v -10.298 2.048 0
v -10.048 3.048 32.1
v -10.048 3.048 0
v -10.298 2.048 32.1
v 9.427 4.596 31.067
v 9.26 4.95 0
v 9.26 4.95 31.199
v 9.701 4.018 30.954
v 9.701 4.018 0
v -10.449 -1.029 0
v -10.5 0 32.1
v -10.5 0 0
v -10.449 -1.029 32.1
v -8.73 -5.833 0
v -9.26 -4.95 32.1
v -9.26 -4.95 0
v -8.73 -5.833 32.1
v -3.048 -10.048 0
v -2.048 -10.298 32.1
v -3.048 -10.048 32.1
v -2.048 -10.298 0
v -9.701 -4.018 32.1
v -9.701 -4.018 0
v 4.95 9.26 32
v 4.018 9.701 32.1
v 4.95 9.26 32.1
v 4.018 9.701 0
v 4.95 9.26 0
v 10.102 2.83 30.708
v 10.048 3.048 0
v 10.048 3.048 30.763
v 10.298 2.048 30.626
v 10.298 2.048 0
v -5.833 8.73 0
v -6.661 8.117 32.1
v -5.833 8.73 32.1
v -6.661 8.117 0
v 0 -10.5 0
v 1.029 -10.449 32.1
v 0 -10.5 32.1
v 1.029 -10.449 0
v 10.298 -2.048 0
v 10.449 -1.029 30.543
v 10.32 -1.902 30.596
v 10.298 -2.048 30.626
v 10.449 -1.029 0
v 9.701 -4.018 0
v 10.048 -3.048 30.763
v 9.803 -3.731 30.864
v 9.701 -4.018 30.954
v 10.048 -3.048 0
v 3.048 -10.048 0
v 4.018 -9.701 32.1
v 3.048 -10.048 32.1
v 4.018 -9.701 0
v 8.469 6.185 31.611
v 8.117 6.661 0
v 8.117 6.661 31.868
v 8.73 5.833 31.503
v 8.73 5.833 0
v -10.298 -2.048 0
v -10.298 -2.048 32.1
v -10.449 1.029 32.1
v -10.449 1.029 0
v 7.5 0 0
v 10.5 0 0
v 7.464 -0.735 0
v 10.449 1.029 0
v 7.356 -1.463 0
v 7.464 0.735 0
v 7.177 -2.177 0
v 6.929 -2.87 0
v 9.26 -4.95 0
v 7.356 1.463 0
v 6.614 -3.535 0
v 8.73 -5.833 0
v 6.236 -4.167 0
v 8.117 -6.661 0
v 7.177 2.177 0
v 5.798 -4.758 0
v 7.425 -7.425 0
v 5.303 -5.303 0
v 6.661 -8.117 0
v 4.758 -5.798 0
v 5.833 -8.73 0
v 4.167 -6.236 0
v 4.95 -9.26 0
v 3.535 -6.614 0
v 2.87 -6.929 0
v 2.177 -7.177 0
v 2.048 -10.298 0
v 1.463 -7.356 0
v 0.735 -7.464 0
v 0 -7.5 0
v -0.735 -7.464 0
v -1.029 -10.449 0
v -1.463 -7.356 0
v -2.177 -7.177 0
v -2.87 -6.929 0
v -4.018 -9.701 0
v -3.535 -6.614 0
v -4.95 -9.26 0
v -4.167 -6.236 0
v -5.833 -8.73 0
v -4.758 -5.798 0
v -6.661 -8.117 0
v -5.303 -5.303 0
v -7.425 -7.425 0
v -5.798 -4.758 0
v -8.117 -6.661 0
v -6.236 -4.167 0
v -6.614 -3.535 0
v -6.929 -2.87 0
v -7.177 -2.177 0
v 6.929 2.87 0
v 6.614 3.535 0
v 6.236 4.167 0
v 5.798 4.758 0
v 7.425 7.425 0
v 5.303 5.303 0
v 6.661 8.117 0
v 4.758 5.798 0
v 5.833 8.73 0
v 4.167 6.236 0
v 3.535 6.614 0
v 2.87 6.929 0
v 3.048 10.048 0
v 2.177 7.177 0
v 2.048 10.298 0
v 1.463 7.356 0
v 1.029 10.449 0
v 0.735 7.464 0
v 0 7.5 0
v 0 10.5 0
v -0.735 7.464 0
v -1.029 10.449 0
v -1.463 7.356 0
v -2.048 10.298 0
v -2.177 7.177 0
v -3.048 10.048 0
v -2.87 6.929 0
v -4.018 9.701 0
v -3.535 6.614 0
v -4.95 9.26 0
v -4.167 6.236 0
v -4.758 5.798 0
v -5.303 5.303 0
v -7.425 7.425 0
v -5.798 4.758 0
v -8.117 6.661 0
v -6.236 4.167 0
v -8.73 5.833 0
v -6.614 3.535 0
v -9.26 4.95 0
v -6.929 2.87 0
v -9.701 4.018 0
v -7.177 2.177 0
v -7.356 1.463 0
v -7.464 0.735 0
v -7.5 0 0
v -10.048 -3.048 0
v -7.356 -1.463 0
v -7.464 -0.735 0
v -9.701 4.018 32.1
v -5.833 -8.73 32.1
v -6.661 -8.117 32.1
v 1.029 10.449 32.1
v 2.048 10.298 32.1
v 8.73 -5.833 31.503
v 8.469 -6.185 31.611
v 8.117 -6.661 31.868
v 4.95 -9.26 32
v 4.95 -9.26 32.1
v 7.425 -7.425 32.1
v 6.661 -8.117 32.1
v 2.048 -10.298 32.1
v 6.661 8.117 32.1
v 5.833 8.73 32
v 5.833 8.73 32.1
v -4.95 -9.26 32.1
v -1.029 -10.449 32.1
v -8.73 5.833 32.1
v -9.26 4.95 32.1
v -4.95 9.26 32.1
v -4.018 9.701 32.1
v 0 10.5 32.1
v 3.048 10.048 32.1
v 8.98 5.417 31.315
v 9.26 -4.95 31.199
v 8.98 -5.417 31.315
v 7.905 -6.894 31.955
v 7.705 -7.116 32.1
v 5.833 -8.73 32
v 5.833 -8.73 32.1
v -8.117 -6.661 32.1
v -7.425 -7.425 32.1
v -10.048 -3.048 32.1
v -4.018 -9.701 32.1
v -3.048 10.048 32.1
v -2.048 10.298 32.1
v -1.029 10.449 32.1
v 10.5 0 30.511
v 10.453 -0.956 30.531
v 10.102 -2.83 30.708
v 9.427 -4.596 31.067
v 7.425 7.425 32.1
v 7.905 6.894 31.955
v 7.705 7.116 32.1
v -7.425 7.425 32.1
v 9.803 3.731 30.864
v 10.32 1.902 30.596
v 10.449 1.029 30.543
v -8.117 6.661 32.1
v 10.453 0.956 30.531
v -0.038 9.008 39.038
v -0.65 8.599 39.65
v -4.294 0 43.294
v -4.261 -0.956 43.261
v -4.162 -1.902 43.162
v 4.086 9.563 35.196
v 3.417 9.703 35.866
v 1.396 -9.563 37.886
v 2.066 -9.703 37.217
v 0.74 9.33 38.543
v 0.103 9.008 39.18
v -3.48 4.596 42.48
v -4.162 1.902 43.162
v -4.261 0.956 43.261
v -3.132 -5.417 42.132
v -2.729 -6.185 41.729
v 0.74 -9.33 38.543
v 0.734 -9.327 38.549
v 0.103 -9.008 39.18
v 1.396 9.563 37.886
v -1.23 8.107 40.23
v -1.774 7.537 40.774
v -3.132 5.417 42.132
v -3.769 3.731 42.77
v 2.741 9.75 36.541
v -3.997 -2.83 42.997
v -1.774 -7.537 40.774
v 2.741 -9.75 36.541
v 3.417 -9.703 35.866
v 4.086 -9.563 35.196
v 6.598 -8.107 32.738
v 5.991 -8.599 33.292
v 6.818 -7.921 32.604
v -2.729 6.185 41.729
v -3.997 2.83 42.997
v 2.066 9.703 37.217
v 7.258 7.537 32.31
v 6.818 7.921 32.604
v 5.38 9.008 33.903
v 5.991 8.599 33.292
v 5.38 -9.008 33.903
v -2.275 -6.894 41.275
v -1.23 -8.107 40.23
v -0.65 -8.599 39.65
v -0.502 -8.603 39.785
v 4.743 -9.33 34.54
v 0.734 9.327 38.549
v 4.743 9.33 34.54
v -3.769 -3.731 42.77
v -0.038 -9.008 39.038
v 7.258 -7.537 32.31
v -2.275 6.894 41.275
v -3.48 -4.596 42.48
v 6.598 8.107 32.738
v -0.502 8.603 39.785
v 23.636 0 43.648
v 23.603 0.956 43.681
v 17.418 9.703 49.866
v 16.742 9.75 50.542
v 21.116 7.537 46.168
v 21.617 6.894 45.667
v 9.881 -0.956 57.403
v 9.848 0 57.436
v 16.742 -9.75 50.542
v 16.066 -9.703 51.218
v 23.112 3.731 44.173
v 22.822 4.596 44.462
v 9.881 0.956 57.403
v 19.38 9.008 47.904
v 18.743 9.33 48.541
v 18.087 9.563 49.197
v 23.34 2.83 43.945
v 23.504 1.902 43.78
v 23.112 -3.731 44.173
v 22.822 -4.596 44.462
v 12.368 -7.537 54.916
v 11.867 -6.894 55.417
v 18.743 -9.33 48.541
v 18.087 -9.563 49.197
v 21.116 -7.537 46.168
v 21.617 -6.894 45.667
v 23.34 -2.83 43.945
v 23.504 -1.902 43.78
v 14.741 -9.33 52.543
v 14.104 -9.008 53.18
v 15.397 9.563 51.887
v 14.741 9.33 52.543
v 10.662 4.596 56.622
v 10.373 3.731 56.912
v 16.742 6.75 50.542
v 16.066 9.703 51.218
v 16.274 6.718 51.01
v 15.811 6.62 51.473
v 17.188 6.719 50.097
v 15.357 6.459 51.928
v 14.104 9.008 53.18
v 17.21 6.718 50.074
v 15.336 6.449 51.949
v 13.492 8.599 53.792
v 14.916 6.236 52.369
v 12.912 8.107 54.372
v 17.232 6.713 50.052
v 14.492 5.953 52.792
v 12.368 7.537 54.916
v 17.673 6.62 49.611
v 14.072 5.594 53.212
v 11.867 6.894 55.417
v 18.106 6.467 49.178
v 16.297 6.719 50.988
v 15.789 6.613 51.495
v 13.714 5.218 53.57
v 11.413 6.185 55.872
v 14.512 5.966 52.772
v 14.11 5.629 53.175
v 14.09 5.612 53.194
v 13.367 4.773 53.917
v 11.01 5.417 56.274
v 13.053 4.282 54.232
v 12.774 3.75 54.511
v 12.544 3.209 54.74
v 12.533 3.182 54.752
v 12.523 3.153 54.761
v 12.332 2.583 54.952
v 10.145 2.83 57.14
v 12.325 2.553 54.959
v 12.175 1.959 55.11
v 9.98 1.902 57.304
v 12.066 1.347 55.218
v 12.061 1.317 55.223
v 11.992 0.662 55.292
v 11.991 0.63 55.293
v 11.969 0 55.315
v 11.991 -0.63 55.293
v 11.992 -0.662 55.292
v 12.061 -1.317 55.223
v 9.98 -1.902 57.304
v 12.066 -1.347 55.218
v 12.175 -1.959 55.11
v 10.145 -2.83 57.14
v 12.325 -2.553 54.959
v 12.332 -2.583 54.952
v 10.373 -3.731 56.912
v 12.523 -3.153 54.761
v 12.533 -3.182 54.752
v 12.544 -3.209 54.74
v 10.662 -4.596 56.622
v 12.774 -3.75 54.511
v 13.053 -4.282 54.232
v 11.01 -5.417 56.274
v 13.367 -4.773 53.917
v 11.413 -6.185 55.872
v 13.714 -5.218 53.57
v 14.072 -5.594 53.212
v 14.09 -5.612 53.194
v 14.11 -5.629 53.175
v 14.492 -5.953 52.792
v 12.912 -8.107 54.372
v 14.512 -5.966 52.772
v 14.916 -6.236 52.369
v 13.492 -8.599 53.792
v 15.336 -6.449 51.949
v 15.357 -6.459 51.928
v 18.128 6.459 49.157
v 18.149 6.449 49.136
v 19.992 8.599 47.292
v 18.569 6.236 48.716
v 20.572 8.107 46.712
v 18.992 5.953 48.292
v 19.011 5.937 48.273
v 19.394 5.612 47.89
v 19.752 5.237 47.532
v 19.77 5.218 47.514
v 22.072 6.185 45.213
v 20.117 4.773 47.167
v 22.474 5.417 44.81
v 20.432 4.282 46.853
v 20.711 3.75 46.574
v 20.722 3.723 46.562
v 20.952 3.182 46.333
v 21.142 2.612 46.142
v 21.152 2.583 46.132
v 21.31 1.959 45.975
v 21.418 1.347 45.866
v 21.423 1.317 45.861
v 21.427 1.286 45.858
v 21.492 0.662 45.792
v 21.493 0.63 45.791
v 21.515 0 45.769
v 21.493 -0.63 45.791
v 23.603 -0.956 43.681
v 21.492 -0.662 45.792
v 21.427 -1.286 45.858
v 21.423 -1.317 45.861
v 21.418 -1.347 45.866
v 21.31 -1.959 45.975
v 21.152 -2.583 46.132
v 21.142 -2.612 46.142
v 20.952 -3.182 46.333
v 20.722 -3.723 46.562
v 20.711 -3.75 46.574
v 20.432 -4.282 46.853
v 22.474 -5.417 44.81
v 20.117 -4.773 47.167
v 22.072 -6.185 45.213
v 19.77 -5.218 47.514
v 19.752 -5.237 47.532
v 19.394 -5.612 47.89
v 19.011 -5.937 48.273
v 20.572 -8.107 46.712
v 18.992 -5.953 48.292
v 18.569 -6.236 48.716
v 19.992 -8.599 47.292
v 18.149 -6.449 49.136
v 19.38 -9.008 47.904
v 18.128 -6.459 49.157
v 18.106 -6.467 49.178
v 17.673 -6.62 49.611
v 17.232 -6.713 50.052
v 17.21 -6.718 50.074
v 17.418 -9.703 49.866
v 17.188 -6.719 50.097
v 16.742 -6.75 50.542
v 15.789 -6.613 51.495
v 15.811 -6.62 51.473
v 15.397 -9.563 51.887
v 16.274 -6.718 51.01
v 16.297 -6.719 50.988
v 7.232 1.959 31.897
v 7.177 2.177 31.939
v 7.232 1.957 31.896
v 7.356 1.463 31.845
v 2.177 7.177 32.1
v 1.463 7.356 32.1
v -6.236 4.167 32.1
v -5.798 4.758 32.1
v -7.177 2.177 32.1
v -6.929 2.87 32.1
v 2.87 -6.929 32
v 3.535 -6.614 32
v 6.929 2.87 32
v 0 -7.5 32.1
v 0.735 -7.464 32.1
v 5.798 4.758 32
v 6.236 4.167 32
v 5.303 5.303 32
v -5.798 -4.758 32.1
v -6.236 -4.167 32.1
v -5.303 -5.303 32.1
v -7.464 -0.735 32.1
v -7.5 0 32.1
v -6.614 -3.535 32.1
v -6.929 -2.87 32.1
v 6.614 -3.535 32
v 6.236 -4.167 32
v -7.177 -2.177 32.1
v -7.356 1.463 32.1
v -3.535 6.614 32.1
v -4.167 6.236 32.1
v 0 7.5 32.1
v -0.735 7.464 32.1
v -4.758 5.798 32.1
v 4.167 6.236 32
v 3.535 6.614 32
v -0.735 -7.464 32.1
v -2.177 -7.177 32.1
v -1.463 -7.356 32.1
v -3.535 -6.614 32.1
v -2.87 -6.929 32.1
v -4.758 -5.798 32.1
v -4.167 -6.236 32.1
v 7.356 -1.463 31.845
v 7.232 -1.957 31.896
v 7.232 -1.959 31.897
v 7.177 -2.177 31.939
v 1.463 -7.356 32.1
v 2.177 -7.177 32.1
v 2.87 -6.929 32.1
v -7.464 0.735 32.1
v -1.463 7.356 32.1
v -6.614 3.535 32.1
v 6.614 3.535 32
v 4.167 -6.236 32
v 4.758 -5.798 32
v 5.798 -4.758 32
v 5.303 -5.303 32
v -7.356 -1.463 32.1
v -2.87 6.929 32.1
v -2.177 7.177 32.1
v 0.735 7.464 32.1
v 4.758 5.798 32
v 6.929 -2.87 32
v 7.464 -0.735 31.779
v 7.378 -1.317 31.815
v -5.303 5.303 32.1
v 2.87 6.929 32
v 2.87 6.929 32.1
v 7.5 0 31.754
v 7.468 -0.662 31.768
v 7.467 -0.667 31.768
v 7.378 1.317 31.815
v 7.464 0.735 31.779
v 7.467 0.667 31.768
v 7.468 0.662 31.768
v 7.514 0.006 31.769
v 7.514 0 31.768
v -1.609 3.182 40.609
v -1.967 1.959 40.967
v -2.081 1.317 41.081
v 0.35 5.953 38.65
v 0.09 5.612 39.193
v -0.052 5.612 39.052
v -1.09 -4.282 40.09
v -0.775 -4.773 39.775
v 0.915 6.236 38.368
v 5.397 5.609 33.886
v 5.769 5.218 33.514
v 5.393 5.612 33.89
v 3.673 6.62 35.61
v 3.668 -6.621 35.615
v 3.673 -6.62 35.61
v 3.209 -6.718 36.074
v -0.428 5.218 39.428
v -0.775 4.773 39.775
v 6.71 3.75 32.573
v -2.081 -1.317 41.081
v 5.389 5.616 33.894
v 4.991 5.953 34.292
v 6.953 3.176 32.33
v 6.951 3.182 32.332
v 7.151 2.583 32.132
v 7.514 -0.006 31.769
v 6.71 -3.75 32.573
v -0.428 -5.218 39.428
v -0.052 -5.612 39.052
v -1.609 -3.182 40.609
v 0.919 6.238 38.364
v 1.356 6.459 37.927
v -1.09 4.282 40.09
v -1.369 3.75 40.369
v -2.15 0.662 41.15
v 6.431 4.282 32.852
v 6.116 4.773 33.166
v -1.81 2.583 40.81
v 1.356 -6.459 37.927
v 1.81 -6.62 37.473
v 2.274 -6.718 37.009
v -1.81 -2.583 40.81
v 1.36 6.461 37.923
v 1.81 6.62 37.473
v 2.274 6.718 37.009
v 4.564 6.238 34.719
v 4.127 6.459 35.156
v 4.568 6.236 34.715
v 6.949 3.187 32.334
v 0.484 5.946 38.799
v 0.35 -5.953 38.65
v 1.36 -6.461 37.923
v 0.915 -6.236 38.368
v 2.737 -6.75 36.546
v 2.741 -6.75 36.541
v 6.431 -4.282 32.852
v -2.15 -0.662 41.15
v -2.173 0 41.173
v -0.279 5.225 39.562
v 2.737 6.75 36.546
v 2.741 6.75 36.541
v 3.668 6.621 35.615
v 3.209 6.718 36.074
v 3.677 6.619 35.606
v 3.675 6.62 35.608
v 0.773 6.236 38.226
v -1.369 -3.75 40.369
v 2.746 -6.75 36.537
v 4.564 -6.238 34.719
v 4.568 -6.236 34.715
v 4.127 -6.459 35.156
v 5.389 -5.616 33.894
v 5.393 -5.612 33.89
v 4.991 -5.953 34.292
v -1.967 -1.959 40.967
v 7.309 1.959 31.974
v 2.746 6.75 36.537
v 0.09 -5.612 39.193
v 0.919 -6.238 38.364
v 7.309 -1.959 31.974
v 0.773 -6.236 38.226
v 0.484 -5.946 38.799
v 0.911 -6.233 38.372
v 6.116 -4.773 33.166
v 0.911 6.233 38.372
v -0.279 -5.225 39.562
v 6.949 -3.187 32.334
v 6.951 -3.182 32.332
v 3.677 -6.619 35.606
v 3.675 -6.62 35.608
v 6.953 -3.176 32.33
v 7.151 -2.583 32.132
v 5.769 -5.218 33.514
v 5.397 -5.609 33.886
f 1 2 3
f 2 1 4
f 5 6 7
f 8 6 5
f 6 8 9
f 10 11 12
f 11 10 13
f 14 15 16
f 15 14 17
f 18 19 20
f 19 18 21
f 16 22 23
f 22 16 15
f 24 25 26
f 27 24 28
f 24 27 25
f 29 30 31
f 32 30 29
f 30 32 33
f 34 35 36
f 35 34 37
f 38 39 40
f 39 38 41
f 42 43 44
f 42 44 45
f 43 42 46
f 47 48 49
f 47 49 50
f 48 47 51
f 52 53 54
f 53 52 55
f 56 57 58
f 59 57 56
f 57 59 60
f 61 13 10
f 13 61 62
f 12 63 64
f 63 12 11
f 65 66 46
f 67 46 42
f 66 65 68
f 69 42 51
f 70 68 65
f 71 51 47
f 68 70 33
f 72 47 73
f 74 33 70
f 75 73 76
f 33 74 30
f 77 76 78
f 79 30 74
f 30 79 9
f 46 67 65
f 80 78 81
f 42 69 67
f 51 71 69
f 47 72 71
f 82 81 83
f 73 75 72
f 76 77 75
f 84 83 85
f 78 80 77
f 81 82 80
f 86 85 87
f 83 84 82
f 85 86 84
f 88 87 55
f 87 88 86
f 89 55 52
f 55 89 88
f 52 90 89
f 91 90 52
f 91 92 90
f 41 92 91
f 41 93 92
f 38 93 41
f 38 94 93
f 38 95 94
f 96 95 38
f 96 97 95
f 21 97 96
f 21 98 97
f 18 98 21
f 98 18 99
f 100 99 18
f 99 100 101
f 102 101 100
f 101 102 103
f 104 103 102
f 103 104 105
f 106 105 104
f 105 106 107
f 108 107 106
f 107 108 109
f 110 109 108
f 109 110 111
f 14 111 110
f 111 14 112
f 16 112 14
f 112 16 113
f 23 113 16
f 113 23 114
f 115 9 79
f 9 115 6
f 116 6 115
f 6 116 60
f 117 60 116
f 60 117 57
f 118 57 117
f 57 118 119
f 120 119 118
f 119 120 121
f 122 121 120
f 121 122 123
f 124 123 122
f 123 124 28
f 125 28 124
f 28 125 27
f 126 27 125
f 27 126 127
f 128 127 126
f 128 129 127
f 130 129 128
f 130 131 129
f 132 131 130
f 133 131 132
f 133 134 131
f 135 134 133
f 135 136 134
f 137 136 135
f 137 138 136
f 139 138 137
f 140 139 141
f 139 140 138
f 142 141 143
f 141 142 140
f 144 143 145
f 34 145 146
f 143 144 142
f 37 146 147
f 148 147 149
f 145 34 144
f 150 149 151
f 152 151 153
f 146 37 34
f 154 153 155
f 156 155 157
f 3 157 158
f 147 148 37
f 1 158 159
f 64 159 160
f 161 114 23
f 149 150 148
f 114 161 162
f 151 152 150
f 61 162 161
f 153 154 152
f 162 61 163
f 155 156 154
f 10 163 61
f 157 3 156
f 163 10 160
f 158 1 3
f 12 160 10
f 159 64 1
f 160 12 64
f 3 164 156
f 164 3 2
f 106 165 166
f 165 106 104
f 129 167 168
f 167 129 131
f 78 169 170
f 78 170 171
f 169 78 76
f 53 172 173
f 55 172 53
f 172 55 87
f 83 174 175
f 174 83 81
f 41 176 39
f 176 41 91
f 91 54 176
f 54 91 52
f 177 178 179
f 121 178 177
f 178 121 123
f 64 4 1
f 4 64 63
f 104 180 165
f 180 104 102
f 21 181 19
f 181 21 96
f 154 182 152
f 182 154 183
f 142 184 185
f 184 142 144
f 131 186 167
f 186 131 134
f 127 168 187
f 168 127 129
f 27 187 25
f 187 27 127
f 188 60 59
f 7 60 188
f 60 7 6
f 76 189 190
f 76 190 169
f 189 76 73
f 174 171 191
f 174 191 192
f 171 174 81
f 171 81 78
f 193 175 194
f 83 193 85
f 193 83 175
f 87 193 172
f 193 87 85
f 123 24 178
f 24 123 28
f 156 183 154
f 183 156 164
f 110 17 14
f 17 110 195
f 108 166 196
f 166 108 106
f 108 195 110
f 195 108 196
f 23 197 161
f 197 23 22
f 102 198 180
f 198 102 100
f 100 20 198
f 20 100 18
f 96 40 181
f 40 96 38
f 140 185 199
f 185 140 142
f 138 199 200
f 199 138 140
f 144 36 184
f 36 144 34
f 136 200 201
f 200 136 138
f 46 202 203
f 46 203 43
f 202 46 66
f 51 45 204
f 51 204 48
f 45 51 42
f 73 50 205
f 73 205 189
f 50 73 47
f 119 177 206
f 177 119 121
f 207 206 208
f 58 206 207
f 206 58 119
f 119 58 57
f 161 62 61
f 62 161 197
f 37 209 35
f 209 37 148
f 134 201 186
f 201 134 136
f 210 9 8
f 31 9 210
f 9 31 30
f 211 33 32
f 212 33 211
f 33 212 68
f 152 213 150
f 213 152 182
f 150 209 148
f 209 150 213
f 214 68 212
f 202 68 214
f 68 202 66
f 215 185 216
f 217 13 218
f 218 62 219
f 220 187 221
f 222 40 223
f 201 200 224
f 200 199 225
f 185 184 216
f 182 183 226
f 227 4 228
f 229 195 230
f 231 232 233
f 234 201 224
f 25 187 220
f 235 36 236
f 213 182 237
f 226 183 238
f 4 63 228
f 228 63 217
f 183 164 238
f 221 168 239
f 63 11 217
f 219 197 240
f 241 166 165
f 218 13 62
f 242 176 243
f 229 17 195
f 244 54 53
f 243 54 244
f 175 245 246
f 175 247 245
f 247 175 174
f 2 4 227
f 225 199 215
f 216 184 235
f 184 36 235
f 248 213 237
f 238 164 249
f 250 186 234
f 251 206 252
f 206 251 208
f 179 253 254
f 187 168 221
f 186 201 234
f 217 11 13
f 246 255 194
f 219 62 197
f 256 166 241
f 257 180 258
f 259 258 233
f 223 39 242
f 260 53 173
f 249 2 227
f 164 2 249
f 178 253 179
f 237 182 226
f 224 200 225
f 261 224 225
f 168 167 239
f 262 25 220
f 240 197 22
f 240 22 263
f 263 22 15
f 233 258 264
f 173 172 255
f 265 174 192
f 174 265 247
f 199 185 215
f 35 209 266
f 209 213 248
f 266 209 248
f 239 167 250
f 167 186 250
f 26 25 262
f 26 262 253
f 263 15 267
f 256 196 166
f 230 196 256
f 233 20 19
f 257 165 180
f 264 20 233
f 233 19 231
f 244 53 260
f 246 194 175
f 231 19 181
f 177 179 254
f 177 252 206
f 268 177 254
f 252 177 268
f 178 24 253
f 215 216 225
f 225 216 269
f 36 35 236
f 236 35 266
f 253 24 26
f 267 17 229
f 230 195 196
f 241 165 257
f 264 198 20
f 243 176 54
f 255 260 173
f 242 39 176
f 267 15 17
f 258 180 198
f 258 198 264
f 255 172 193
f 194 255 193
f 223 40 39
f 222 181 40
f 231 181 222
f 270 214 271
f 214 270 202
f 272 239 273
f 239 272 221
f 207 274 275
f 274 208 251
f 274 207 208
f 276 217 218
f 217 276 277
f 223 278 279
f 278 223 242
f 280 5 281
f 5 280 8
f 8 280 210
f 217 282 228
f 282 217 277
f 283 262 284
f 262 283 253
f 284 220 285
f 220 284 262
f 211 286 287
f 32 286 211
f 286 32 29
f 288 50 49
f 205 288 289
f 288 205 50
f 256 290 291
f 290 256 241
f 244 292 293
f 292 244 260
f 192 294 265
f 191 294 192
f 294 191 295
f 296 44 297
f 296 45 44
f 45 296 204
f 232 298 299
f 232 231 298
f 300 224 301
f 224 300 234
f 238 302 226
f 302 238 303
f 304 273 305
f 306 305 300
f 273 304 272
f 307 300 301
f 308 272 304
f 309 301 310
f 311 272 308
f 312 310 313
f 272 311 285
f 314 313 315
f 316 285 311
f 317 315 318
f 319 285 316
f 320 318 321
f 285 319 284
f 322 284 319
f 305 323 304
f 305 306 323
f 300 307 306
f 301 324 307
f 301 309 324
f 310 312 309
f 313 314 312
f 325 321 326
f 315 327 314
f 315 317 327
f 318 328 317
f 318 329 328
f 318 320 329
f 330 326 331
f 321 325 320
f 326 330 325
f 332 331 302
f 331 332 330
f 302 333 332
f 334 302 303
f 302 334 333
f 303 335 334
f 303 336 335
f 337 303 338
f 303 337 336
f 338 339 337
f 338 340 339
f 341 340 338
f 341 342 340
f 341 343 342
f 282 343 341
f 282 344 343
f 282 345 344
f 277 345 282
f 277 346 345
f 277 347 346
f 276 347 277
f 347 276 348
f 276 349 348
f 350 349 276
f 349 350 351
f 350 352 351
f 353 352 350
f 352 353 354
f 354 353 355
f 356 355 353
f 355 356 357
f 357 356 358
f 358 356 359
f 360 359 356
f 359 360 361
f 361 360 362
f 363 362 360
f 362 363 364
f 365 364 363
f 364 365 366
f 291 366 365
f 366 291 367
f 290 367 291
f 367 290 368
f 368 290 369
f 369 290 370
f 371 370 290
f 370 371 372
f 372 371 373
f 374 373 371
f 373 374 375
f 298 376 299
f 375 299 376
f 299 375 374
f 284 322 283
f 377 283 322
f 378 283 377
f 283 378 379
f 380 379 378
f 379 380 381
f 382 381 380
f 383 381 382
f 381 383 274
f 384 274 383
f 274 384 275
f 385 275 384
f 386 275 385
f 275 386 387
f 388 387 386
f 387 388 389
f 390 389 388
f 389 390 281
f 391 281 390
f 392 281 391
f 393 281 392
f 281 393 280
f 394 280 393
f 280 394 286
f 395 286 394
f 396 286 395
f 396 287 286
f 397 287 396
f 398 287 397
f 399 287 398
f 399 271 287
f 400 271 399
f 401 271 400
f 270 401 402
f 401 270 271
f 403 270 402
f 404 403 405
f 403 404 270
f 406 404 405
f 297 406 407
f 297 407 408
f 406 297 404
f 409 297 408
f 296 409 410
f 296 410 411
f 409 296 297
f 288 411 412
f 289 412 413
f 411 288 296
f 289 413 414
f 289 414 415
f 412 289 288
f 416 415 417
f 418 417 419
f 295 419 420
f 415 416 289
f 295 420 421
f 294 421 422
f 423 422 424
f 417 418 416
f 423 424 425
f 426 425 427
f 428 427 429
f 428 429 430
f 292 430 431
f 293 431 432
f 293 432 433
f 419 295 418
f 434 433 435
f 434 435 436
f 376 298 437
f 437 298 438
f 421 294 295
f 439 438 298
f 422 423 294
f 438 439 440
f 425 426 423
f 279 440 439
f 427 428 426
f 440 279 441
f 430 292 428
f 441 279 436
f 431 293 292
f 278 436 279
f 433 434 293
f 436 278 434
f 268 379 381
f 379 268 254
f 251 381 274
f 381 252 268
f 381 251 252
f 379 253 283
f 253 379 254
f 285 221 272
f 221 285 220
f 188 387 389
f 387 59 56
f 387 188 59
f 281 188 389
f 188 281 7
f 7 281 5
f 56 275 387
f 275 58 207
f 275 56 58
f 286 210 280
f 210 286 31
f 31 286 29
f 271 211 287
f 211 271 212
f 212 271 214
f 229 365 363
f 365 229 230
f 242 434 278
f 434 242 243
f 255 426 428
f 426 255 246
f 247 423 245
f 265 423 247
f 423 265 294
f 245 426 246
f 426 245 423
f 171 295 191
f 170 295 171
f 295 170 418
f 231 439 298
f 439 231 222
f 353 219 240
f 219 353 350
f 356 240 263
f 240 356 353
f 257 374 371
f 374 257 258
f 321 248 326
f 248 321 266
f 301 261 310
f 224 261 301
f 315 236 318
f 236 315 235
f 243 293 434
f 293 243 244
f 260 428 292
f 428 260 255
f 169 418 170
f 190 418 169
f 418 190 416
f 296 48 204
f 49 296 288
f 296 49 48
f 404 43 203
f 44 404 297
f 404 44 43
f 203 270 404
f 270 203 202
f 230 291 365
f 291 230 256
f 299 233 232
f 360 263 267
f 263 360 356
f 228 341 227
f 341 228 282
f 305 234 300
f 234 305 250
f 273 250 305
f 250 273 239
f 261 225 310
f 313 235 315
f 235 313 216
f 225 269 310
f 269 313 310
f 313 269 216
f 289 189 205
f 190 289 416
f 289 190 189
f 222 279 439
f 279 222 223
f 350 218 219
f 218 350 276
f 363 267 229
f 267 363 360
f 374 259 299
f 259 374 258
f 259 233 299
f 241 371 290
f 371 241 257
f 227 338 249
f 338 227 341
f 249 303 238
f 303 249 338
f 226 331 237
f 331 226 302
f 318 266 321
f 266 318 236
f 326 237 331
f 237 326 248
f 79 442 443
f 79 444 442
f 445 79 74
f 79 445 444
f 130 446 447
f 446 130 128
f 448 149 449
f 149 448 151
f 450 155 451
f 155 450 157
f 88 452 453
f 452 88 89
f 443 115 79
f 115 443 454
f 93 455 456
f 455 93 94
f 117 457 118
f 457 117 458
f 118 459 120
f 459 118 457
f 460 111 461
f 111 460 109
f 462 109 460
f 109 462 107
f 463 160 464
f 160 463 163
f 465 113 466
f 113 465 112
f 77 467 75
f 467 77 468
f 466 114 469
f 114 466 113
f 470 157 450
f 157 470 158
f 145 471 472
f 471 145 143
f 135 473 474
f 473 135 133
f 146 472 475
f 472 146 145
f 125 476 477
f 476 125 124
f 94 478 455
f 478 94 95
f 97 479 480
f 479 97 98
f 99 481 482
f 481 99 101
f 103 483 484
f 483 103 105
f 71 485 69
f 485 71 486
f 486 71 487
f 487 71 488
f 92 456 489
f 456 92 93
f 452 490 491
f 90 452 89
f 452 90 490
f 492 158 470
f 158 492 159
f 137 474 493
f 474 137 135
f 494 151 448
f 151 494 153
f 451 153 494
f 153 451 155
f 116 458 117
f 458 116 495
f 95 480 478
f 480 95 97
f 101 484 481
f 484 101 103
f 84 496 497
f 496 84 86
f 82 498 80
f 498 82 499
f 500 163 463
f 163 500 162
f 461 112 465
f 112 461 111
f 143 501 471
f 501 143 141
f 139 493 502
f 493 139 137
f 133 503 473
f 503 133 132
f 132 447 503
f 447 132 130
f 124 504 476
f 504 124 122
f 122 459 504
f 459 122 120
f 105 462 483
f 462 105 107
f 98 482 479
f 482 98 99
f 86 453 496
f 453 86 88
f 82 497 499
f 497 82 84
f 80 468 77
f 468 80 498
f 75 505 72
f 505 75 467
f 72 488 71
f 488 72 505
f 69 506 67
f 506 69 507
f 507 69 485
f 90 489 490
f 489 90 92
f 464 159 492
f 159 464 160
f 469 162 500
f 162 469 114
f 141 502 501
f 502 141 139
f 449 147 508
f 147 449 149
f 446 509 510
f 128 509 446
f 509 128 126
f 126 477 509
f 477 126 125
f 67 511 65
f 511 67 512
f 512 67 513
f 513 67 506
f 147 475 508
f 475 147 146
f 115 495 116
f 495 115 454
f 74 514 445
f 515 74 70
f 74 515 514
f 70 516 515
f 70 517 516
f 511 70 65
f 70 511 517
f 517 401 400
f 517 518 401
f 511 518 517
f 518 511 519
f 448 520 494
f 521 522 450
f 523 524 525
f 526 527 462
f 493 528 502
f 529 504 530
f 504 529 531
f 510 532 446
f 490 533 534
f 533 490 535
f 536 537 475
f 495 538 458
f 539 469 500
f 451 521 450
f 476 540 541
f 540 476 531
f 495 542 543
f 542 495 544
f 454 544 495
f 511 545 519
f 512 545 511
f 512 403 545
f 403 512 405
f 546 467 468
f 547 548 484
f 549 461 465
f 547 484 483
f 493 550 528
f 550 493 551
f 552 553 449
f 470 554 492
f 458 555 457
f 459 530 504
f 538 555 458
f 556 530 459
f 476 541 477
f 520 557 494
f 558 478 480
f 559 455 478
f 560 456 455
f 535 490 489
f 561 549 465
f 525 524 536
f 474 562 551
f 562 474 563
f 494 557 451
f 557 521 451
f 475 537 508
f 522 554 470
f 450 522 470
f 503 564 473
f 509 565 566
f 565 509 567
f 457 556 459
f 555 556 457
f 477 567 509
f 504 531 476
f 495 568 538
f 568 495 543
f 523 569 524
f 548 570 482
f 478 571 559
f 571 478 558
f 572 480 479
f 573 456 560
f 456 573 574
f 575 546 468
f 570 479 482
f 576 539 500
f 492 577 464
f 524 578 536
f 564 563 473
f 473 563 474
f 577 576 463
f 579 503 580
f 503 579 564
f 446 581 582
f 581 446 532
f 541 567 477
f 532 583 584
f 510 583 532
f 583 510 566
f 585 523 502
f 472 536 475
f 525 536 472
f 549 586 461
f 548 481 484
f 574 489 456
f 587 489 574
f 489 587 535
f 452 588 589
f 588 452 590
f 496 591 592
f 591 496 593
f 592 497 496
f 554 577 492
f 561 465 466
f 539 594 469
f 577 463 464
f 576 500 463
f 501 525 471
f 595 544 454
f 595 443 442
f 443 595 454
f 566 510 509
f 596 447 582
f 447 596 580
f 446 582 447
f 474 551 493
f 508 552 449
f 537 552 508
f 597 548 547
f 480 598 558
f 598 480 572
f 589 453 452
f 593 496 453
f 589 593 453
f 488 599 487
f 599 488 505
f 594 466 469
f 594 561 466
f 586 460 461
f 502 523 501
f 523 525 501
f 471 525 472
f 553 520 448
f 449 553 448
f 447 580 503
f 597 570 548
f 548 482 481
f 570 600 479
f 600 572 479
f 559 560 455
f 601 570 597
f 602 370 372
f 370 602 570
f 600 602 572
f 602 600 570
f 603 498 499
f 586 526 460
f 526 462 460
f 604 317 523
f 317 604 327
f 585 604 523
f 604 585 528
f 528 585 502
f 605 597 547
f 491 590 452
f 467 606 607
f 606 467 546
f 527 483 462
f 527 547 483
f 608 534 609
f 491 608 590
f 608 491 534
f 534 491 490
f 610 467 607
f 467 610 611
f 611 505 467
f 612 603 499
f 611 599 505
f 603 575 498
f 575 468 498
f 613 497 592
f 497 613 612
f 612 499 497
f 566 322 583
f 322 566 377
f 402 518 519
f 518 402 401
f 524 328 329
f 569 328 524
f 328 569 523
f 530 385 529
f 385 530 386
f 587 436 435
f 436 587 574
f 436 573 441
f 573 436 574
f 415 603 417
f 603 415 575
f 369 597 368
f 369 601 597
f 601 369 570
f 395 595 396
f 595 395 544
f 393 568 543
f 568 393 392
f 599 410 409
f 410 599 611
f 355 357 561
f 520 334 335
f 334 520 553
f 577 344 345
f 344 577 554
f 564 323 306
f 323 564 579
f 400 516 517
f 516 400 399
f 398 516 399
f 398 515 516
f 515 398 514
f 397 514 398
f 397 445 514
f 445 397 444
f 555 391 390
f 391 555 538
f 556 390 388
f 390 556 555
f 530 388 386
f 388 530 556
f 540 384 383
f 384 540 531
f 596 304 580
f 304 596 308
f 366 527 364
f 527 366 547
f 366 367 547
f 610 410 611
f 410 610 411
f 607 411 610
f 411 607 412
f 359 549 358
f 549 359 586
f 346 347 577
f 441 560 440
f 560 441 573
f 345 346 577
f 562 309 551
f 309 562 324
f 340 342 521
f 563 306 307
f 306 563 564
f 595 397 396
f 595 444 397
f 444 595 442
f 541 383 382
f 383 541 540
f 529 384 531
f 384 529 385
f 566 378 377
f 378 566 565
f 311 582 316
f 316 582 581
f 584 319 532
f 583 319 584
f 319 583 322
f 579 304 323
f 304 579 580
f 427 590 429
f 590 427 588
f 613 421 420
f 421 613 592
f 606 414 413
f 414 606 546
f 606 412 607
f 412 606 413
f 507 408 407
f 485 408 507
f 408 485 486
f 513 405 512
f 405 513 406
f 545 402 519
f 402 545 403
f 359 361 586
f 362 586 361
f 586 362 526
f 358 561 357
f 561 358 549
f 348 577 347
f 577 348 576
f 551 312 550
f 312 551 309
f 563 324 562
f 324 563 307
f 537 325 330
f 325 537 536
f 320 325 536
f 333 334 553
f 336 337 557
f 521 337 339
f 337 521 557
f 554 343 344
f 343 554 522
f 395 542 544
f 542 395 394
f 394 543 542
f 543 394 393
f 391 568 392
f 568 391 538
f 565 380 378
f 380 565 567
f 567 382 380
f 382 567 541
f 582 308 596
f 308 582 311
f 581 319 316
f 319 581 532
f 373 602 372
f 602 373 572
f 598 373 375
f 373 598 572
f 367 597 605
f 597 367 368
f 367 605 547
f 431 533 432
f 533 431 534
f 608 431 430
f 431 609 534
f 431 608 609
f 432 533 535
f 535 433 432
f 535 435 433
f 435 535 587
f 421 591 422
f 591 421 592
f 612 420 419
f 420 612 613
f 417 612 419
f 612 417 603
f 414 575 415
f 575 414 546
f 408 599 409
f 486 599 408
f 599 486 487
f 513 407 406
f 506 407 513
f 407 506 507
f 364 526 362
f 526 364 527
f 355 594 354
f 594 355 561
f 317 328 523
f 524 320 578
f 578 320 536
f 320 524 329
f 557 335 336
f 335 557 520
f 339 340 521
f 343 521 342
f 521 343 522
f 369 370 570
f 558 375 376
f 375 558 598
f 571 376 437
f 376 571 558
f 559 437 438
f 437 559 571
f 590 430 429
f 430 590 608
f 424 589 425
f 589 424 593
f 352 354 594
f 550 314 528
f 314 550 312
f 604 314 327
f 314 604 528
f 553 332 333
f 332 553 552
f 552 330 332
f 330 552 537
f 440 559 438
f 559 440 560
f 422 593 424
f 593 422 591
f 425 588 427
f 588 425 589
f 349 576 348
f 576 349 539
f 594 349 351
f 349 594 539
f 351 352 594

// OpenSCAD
difference() {
	difference() {
		difference() {
			union() {
				union() {
					hull() {
						union() {
							cylinder($fn = 64, d = 21, h = 0.1000000000);
							translate(v = [0, 0, 32]) {
								cylinder($fn = 64, d = 21, h = 0.1000000000);
							}
						}
					}
					hull() {
						union() {
							translate(v = [0, 0, 32]) {
								cylinder($fn = 64, d = 21, h = 0.1000000000);
							}
							translate(v = [2.6000000000, 0, 0]) {
								translate(v = [0, 0, 36.4000000000]) {
									rotate(a = [0, 45, 0]) {
										cylinder($fn = 64, d = 19.5000000000, h = 0.2000000000);
									}
								}
							}
						}
					}
				}
				translate(v = [2.6000000000, 0, 0]) {
					translate(v = [0, 0, 36.4000000000]) {
						rotate(a = [0, 45, 0]) {
							cylinder($fn = 64, d = 19.5000000000, h = 20);
						}
					}
				}
			}
			hull() {
				union() {
					cylinder($fn = 64, d = 15, h = 0.1000000000);
					translate(v = [0, 0, 32]) {
						cylinder($fn = 64, d = 15, h = 0.1000000000);
					}
				}
			}
		}
		hull() {
			union() {
				translate(v = [0, 0, 32]) {
					cylinder($fn = 64, d = 15, h = 0.1000000000);
				}
				translate(v = [2.6000000000, 0, 0]) {
					translate(v = [0, 0, 36.4000000000]) {
						rotate(a = [0, 45, 0]) {
							cylinder($fn = 64, d = 13.5000000000, h = 0.2000000000);
						}
					}
				}
			}
		}
	}
	translate(v = [2.6000000000, 0, 0]) {
		translate(v = [0, 0, 36.4000000000]) {
			rotate(a = [0, 45, 0]) {
				cylinder($fn = 64, d = 13.5000000000, h = 21);
			}
		}
	}
}
/***********************************************
*********      SolidPython code:      **********
************************************************
 
import solid as s
import solid.utils as u

wall = 3
pipe_internal_dia = 11.5
pipe_dia = 13.5
pipe_length = 20
pipe_outer = pipe_dia + wall * 2
switch_dia = 15
switch_length = 32
switch_outer = switch_dia + wall * 2
angle = 45
seg = 64

c1 = s.cylinder(d=switch_dia, h=0.1, segments=seg)
c2 = u.up(switch_length)(s.cylinder(d=switch_dia, h=0.1, segments=seg))

c3 = u.right(2.6)(u.up(switch_length + 4.4)(u.rotate(a=[0, 45, 0])(
     s.cylinder(d=pipe_dia, h=0.2, segments=seg)
)))
c4 = u.right(2.6)(u.up(switch_length + 4.4)(u.rotate(a=[0, 45, 0])(
     s.cylinder(d=pipe_dia, h=pipe_length + 1, segments=seg)
)))
co1 = s.cylinder(d=switch_outer, h=0.1, segments=seg)
co2 = u.up(switch_length)(s.cylinder(d=switch_outer, h=0.1, segments=seg))

co3 = u.right(2.6)(u.up(switch_length + 4.4)(u.rotate(a=[0, 45, 0])(
     s.cylinder(d=pipe_outer, h=0.2, segments=seg)
)))
co4 = u.right(2.6)(u.up(switch_length + 4.4)(u.rotate(a=[0, 45, 0])(
     s.cylinder(d=pipe_outer, h=pipe_length, segments=seg)
)))
m = s.hull()(co1 + co2)
m += s.hull()(co2 + co3)
m += co4
m -= s.hull()(c1 + c2)
m -= s.hull()(c2 + c3)
m -= c4

final = m

s.scad_render_to_file(final, __file__.replace('.py', '.scad'))
 
 
************************************************/
